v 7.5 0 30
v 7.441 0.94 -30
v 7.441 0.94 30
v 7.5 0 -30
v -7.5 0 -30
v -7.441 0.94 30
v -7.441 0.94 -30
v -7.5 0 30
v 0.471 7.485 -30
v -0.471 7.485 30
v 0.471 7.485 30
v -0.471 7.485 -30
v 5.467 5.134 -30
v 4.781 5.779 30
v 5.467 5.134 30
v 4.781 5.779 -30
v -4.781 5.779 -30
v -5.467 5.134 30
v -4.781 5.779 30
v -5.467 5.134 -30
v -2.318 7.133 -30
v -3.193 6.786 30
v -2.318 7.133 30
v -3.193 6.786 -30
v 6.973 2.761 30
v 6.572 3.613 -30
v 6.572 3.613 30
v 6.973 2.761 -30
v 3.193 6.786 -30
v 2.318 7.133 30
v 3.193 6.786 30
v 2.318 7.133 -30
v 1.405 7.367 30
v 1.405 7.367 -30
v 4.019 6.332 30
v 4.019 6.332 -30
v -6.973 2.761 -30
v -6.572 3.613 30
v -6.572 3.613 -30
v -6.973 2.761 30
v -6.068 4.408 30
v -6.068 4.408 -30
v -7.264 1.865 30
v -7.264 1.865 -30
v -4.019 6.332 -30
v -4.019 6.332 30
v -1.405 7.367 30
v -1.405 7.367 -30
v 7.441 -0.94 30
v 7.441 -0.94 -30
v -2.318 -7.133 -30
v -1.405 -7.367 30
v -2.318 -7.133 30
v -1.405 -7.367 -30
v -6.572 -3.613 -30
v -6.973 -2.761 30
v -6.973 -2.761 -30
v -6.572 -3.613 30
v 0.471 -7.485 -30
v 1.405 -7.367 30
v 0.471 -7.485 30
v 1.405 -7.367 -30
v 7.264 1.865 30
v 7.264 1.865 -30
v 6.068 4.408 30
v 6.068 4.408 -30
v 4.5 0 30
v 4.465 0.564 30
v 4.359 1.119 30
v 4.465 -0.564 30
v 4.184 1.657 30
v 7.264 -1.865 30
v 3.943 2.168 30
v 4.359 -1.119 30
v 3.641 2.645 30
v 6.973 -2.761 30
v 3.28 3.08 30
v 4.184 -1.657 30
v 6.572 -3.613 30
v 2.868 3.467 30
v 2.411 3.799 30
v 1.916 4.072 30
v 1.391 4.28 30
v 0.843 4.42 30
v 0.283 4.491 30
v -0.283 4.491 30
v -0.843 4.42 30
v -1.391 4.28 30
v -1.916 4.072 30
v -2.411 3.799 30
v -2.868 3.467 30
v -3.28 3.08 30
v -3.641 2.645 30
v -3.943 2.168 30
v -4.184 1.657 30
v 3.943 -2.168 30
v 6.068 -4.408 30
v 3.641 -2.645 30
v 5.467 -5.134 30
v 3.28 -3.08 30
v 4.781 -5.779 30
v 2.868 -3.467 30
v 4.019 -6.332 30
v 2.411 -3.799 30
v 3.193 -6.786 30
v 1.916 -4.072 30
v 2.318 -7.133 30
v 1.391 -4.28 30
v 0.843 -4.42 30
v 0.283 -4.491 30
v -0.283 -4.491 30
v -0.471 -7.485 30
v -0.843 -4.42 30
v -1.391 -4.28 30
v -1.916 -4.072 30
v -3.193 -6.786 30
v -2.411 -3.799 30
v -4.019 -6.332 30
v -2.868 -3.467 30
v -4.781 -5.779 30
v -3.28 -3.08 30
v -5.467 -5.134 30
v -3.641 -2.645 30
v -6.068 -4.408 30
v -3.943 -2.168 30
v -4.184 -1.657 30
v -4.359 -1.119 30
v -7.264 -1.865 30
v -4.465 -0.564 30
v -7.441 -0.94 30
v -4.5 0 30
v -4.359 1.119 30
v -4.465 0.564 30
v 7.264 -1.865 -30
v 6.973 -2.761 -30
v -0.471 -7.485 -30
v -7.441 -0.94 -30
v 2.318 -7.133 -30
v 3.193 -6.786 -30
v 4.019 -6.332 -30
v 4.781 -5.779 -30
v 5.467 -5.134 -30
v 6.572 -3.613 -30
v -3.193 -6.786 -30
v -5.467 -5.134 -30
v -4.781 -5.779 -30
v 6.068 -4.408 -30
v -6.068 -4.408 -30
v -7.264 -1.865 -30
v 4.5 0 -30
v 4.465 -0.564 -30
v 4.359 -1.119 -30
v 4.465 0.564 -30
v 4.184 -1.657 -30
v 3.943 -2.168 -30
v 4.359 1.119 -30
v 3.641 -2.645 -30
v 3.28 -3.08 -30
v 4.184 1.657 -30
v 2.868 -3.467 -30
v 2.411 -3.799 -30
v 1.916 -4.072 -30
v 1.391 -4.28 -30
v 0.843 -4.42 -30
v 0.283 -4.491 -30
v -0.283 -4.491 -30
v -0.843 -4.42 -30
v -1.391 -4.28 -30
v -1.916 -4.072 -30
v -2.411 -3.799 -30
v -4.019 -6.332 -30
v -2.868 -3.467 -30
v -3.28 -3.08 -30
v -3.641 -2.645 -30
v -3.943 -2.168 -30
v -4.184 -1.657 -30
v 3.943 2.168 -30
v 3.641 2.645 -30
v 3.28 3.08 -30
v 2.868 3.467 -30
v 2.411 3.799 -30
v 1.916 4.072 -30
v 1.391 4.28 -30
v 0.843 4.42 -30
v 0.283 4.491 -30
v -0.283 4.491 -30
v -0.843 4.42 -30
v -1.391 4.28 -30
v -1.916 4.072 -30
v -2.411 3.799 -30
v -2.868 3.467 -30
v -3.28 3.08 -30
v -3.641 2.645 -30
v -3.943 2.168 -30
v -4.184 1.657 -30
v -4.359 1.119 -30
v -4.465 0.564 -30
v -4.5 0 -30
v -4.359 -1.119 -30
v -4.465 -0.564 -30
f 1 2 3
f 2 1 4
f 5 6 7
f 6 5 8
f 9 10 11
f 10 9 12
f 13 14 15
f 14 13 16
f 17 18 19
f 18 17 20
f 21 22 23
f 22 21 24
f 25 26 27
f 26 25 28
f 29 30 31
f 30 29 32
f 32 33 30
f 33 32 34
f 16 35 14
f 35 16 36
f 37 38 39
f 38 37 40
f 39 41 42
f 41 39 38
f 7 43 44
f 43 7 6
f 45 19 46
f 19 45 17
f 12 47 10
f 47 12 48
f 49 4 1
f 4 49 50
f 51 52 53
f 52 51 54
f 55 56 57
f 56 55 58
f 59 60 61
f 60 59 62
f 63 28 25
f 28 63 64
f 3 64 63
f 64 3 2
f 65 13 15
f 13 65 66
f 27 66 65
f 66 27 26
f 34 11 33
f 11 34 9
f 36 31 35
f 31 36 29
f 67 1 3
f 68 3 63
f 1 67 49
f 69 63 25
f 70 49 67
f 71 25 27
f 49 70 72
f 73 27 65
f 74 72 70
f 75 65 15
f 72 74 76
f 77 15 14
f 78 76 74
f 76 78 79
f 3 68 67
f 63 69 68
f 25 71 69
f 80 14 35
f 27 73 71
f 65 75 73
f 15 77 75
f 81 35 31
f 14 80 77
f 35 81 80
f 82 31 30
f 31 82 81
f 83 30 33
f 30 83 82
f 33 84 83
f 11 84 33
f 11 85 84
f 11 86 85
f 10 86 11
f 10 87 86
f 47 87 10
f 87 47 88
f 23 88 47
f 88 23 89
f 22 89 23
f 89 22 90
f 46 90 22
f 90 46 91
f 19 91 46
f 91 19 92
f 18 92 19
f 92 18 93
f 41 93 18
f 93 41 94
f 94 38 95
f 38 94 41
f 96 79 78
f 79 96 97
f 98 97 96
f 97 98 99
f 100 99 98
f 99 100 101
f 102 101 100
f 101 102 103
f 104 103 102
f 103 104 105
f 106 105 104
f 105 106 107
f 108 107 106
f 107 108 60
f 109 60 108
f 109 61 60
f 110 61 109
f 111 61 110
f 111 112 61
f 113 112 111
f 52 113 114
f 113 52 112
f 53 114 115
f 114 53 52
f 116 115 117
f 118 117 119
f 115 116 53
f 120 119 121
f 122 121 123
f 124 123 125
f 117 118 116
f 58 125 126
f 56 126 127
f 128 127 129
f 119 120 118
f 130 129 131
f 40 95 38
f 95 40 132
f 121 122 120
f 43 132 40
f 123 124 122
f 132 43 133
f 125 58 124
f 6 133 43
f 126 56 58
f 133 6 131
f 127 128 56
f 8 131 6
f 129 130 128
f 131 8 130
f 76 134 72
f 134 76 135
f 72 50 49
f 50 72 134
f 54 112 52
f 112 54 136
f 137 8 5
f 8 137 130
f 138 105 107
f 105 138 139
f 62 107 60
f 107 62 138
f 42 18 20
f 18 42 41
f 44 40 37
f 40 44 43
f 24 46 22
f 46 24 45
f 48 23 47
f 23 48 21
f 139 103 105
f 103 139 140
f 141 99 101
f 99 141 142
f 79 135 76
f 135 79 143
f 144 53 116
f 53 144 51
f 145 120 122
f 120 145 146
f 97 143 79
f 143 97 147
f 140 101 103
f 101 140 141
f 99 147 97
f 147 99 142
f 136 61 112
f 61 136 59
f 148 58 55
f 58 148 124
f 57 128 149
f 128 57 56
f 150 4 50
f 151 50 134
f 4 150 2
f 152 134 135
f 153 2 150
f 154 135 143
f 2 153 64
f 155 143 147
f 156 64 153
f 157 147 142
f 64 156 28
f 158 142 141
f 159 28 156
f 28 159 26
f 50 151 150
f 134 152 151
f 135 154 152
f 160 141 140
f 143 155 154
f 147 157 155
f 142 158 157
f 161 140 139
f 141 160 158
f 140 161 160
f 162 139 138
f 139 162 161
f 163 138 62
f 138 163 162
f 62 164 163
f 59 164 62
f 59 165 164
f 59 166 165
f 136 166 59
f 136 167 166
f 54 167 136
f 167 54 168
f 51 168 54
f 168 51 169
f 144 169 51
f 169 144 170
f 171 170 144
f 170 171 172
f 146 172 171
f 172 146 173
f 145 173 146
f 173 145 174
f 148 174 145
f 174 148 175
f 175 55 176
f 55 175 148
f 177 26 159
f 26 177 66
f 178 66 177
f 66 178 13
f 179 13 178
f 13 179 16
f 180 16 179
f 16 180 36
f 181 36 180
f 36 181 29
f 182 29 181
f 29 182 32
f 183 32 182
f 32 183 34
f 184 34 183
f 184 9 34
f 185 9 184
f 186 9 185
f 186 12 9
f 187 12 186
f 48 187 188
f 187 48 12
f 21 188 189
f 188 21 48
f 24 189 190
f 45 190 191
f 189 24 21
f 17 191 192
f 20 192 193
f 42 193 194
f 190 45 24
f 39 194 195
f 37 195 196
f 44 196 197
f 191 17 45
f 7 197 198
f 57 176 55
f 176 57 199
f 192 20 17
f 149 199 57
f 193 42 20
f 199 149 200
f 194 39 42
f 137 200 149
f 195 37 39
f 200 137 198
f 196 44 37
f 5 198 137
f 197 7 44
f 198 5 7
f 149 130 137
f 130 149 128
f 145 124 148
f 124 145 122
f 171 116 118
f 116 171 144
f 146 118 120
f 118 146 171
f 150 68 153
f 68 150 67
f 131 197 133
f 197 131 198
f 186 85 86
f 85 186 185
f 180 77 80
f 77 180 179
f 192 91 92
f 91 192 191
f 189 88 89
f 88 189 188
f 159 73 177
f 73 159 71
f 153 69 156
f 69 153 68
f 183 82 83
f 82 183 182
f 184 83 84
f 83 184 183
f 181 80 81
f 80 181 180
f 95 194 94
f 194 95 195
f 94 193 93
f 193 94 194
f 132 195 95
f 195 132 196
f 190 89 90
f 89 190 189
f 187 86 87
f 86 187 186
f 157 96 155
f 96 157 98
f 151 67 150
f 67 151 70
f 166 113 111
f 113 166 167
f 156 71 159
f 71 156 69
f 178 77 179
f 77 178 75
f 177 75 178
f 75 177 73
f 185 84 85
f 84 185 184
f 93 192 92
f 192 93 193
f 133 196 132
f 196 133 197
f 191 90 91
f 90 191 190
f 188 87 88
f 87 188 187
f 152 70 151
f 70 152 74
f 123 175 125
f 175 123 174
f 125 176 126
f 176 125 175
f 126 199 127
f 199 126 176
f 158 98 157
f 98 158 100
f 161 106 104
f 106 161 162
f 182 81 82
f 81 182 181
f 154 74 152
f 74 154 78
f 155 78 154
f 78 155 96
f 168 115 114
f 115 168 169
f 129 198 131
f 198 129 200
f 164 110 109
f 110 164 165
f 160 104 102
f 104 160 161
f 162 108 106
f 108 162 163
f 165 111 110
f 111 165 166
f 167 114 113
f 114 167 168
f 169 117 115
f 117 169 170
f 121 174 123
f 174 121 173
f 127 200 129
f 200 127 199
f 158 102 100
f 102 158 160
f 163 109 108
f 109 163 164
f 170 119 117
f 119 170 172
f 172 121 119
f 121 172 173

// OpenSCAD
$fn = 50;


difference() {
	union() {
		translate(v = [0, 0, -30.0000000000]) {
			cylinder(h = 60, r = 7.5000000000);
		}
	}
	union() {
		translate(v = [0, 0, -100.0000000000]) {
			cylinder(h = 200, r = 4.5000000000);
		}
	}
}
